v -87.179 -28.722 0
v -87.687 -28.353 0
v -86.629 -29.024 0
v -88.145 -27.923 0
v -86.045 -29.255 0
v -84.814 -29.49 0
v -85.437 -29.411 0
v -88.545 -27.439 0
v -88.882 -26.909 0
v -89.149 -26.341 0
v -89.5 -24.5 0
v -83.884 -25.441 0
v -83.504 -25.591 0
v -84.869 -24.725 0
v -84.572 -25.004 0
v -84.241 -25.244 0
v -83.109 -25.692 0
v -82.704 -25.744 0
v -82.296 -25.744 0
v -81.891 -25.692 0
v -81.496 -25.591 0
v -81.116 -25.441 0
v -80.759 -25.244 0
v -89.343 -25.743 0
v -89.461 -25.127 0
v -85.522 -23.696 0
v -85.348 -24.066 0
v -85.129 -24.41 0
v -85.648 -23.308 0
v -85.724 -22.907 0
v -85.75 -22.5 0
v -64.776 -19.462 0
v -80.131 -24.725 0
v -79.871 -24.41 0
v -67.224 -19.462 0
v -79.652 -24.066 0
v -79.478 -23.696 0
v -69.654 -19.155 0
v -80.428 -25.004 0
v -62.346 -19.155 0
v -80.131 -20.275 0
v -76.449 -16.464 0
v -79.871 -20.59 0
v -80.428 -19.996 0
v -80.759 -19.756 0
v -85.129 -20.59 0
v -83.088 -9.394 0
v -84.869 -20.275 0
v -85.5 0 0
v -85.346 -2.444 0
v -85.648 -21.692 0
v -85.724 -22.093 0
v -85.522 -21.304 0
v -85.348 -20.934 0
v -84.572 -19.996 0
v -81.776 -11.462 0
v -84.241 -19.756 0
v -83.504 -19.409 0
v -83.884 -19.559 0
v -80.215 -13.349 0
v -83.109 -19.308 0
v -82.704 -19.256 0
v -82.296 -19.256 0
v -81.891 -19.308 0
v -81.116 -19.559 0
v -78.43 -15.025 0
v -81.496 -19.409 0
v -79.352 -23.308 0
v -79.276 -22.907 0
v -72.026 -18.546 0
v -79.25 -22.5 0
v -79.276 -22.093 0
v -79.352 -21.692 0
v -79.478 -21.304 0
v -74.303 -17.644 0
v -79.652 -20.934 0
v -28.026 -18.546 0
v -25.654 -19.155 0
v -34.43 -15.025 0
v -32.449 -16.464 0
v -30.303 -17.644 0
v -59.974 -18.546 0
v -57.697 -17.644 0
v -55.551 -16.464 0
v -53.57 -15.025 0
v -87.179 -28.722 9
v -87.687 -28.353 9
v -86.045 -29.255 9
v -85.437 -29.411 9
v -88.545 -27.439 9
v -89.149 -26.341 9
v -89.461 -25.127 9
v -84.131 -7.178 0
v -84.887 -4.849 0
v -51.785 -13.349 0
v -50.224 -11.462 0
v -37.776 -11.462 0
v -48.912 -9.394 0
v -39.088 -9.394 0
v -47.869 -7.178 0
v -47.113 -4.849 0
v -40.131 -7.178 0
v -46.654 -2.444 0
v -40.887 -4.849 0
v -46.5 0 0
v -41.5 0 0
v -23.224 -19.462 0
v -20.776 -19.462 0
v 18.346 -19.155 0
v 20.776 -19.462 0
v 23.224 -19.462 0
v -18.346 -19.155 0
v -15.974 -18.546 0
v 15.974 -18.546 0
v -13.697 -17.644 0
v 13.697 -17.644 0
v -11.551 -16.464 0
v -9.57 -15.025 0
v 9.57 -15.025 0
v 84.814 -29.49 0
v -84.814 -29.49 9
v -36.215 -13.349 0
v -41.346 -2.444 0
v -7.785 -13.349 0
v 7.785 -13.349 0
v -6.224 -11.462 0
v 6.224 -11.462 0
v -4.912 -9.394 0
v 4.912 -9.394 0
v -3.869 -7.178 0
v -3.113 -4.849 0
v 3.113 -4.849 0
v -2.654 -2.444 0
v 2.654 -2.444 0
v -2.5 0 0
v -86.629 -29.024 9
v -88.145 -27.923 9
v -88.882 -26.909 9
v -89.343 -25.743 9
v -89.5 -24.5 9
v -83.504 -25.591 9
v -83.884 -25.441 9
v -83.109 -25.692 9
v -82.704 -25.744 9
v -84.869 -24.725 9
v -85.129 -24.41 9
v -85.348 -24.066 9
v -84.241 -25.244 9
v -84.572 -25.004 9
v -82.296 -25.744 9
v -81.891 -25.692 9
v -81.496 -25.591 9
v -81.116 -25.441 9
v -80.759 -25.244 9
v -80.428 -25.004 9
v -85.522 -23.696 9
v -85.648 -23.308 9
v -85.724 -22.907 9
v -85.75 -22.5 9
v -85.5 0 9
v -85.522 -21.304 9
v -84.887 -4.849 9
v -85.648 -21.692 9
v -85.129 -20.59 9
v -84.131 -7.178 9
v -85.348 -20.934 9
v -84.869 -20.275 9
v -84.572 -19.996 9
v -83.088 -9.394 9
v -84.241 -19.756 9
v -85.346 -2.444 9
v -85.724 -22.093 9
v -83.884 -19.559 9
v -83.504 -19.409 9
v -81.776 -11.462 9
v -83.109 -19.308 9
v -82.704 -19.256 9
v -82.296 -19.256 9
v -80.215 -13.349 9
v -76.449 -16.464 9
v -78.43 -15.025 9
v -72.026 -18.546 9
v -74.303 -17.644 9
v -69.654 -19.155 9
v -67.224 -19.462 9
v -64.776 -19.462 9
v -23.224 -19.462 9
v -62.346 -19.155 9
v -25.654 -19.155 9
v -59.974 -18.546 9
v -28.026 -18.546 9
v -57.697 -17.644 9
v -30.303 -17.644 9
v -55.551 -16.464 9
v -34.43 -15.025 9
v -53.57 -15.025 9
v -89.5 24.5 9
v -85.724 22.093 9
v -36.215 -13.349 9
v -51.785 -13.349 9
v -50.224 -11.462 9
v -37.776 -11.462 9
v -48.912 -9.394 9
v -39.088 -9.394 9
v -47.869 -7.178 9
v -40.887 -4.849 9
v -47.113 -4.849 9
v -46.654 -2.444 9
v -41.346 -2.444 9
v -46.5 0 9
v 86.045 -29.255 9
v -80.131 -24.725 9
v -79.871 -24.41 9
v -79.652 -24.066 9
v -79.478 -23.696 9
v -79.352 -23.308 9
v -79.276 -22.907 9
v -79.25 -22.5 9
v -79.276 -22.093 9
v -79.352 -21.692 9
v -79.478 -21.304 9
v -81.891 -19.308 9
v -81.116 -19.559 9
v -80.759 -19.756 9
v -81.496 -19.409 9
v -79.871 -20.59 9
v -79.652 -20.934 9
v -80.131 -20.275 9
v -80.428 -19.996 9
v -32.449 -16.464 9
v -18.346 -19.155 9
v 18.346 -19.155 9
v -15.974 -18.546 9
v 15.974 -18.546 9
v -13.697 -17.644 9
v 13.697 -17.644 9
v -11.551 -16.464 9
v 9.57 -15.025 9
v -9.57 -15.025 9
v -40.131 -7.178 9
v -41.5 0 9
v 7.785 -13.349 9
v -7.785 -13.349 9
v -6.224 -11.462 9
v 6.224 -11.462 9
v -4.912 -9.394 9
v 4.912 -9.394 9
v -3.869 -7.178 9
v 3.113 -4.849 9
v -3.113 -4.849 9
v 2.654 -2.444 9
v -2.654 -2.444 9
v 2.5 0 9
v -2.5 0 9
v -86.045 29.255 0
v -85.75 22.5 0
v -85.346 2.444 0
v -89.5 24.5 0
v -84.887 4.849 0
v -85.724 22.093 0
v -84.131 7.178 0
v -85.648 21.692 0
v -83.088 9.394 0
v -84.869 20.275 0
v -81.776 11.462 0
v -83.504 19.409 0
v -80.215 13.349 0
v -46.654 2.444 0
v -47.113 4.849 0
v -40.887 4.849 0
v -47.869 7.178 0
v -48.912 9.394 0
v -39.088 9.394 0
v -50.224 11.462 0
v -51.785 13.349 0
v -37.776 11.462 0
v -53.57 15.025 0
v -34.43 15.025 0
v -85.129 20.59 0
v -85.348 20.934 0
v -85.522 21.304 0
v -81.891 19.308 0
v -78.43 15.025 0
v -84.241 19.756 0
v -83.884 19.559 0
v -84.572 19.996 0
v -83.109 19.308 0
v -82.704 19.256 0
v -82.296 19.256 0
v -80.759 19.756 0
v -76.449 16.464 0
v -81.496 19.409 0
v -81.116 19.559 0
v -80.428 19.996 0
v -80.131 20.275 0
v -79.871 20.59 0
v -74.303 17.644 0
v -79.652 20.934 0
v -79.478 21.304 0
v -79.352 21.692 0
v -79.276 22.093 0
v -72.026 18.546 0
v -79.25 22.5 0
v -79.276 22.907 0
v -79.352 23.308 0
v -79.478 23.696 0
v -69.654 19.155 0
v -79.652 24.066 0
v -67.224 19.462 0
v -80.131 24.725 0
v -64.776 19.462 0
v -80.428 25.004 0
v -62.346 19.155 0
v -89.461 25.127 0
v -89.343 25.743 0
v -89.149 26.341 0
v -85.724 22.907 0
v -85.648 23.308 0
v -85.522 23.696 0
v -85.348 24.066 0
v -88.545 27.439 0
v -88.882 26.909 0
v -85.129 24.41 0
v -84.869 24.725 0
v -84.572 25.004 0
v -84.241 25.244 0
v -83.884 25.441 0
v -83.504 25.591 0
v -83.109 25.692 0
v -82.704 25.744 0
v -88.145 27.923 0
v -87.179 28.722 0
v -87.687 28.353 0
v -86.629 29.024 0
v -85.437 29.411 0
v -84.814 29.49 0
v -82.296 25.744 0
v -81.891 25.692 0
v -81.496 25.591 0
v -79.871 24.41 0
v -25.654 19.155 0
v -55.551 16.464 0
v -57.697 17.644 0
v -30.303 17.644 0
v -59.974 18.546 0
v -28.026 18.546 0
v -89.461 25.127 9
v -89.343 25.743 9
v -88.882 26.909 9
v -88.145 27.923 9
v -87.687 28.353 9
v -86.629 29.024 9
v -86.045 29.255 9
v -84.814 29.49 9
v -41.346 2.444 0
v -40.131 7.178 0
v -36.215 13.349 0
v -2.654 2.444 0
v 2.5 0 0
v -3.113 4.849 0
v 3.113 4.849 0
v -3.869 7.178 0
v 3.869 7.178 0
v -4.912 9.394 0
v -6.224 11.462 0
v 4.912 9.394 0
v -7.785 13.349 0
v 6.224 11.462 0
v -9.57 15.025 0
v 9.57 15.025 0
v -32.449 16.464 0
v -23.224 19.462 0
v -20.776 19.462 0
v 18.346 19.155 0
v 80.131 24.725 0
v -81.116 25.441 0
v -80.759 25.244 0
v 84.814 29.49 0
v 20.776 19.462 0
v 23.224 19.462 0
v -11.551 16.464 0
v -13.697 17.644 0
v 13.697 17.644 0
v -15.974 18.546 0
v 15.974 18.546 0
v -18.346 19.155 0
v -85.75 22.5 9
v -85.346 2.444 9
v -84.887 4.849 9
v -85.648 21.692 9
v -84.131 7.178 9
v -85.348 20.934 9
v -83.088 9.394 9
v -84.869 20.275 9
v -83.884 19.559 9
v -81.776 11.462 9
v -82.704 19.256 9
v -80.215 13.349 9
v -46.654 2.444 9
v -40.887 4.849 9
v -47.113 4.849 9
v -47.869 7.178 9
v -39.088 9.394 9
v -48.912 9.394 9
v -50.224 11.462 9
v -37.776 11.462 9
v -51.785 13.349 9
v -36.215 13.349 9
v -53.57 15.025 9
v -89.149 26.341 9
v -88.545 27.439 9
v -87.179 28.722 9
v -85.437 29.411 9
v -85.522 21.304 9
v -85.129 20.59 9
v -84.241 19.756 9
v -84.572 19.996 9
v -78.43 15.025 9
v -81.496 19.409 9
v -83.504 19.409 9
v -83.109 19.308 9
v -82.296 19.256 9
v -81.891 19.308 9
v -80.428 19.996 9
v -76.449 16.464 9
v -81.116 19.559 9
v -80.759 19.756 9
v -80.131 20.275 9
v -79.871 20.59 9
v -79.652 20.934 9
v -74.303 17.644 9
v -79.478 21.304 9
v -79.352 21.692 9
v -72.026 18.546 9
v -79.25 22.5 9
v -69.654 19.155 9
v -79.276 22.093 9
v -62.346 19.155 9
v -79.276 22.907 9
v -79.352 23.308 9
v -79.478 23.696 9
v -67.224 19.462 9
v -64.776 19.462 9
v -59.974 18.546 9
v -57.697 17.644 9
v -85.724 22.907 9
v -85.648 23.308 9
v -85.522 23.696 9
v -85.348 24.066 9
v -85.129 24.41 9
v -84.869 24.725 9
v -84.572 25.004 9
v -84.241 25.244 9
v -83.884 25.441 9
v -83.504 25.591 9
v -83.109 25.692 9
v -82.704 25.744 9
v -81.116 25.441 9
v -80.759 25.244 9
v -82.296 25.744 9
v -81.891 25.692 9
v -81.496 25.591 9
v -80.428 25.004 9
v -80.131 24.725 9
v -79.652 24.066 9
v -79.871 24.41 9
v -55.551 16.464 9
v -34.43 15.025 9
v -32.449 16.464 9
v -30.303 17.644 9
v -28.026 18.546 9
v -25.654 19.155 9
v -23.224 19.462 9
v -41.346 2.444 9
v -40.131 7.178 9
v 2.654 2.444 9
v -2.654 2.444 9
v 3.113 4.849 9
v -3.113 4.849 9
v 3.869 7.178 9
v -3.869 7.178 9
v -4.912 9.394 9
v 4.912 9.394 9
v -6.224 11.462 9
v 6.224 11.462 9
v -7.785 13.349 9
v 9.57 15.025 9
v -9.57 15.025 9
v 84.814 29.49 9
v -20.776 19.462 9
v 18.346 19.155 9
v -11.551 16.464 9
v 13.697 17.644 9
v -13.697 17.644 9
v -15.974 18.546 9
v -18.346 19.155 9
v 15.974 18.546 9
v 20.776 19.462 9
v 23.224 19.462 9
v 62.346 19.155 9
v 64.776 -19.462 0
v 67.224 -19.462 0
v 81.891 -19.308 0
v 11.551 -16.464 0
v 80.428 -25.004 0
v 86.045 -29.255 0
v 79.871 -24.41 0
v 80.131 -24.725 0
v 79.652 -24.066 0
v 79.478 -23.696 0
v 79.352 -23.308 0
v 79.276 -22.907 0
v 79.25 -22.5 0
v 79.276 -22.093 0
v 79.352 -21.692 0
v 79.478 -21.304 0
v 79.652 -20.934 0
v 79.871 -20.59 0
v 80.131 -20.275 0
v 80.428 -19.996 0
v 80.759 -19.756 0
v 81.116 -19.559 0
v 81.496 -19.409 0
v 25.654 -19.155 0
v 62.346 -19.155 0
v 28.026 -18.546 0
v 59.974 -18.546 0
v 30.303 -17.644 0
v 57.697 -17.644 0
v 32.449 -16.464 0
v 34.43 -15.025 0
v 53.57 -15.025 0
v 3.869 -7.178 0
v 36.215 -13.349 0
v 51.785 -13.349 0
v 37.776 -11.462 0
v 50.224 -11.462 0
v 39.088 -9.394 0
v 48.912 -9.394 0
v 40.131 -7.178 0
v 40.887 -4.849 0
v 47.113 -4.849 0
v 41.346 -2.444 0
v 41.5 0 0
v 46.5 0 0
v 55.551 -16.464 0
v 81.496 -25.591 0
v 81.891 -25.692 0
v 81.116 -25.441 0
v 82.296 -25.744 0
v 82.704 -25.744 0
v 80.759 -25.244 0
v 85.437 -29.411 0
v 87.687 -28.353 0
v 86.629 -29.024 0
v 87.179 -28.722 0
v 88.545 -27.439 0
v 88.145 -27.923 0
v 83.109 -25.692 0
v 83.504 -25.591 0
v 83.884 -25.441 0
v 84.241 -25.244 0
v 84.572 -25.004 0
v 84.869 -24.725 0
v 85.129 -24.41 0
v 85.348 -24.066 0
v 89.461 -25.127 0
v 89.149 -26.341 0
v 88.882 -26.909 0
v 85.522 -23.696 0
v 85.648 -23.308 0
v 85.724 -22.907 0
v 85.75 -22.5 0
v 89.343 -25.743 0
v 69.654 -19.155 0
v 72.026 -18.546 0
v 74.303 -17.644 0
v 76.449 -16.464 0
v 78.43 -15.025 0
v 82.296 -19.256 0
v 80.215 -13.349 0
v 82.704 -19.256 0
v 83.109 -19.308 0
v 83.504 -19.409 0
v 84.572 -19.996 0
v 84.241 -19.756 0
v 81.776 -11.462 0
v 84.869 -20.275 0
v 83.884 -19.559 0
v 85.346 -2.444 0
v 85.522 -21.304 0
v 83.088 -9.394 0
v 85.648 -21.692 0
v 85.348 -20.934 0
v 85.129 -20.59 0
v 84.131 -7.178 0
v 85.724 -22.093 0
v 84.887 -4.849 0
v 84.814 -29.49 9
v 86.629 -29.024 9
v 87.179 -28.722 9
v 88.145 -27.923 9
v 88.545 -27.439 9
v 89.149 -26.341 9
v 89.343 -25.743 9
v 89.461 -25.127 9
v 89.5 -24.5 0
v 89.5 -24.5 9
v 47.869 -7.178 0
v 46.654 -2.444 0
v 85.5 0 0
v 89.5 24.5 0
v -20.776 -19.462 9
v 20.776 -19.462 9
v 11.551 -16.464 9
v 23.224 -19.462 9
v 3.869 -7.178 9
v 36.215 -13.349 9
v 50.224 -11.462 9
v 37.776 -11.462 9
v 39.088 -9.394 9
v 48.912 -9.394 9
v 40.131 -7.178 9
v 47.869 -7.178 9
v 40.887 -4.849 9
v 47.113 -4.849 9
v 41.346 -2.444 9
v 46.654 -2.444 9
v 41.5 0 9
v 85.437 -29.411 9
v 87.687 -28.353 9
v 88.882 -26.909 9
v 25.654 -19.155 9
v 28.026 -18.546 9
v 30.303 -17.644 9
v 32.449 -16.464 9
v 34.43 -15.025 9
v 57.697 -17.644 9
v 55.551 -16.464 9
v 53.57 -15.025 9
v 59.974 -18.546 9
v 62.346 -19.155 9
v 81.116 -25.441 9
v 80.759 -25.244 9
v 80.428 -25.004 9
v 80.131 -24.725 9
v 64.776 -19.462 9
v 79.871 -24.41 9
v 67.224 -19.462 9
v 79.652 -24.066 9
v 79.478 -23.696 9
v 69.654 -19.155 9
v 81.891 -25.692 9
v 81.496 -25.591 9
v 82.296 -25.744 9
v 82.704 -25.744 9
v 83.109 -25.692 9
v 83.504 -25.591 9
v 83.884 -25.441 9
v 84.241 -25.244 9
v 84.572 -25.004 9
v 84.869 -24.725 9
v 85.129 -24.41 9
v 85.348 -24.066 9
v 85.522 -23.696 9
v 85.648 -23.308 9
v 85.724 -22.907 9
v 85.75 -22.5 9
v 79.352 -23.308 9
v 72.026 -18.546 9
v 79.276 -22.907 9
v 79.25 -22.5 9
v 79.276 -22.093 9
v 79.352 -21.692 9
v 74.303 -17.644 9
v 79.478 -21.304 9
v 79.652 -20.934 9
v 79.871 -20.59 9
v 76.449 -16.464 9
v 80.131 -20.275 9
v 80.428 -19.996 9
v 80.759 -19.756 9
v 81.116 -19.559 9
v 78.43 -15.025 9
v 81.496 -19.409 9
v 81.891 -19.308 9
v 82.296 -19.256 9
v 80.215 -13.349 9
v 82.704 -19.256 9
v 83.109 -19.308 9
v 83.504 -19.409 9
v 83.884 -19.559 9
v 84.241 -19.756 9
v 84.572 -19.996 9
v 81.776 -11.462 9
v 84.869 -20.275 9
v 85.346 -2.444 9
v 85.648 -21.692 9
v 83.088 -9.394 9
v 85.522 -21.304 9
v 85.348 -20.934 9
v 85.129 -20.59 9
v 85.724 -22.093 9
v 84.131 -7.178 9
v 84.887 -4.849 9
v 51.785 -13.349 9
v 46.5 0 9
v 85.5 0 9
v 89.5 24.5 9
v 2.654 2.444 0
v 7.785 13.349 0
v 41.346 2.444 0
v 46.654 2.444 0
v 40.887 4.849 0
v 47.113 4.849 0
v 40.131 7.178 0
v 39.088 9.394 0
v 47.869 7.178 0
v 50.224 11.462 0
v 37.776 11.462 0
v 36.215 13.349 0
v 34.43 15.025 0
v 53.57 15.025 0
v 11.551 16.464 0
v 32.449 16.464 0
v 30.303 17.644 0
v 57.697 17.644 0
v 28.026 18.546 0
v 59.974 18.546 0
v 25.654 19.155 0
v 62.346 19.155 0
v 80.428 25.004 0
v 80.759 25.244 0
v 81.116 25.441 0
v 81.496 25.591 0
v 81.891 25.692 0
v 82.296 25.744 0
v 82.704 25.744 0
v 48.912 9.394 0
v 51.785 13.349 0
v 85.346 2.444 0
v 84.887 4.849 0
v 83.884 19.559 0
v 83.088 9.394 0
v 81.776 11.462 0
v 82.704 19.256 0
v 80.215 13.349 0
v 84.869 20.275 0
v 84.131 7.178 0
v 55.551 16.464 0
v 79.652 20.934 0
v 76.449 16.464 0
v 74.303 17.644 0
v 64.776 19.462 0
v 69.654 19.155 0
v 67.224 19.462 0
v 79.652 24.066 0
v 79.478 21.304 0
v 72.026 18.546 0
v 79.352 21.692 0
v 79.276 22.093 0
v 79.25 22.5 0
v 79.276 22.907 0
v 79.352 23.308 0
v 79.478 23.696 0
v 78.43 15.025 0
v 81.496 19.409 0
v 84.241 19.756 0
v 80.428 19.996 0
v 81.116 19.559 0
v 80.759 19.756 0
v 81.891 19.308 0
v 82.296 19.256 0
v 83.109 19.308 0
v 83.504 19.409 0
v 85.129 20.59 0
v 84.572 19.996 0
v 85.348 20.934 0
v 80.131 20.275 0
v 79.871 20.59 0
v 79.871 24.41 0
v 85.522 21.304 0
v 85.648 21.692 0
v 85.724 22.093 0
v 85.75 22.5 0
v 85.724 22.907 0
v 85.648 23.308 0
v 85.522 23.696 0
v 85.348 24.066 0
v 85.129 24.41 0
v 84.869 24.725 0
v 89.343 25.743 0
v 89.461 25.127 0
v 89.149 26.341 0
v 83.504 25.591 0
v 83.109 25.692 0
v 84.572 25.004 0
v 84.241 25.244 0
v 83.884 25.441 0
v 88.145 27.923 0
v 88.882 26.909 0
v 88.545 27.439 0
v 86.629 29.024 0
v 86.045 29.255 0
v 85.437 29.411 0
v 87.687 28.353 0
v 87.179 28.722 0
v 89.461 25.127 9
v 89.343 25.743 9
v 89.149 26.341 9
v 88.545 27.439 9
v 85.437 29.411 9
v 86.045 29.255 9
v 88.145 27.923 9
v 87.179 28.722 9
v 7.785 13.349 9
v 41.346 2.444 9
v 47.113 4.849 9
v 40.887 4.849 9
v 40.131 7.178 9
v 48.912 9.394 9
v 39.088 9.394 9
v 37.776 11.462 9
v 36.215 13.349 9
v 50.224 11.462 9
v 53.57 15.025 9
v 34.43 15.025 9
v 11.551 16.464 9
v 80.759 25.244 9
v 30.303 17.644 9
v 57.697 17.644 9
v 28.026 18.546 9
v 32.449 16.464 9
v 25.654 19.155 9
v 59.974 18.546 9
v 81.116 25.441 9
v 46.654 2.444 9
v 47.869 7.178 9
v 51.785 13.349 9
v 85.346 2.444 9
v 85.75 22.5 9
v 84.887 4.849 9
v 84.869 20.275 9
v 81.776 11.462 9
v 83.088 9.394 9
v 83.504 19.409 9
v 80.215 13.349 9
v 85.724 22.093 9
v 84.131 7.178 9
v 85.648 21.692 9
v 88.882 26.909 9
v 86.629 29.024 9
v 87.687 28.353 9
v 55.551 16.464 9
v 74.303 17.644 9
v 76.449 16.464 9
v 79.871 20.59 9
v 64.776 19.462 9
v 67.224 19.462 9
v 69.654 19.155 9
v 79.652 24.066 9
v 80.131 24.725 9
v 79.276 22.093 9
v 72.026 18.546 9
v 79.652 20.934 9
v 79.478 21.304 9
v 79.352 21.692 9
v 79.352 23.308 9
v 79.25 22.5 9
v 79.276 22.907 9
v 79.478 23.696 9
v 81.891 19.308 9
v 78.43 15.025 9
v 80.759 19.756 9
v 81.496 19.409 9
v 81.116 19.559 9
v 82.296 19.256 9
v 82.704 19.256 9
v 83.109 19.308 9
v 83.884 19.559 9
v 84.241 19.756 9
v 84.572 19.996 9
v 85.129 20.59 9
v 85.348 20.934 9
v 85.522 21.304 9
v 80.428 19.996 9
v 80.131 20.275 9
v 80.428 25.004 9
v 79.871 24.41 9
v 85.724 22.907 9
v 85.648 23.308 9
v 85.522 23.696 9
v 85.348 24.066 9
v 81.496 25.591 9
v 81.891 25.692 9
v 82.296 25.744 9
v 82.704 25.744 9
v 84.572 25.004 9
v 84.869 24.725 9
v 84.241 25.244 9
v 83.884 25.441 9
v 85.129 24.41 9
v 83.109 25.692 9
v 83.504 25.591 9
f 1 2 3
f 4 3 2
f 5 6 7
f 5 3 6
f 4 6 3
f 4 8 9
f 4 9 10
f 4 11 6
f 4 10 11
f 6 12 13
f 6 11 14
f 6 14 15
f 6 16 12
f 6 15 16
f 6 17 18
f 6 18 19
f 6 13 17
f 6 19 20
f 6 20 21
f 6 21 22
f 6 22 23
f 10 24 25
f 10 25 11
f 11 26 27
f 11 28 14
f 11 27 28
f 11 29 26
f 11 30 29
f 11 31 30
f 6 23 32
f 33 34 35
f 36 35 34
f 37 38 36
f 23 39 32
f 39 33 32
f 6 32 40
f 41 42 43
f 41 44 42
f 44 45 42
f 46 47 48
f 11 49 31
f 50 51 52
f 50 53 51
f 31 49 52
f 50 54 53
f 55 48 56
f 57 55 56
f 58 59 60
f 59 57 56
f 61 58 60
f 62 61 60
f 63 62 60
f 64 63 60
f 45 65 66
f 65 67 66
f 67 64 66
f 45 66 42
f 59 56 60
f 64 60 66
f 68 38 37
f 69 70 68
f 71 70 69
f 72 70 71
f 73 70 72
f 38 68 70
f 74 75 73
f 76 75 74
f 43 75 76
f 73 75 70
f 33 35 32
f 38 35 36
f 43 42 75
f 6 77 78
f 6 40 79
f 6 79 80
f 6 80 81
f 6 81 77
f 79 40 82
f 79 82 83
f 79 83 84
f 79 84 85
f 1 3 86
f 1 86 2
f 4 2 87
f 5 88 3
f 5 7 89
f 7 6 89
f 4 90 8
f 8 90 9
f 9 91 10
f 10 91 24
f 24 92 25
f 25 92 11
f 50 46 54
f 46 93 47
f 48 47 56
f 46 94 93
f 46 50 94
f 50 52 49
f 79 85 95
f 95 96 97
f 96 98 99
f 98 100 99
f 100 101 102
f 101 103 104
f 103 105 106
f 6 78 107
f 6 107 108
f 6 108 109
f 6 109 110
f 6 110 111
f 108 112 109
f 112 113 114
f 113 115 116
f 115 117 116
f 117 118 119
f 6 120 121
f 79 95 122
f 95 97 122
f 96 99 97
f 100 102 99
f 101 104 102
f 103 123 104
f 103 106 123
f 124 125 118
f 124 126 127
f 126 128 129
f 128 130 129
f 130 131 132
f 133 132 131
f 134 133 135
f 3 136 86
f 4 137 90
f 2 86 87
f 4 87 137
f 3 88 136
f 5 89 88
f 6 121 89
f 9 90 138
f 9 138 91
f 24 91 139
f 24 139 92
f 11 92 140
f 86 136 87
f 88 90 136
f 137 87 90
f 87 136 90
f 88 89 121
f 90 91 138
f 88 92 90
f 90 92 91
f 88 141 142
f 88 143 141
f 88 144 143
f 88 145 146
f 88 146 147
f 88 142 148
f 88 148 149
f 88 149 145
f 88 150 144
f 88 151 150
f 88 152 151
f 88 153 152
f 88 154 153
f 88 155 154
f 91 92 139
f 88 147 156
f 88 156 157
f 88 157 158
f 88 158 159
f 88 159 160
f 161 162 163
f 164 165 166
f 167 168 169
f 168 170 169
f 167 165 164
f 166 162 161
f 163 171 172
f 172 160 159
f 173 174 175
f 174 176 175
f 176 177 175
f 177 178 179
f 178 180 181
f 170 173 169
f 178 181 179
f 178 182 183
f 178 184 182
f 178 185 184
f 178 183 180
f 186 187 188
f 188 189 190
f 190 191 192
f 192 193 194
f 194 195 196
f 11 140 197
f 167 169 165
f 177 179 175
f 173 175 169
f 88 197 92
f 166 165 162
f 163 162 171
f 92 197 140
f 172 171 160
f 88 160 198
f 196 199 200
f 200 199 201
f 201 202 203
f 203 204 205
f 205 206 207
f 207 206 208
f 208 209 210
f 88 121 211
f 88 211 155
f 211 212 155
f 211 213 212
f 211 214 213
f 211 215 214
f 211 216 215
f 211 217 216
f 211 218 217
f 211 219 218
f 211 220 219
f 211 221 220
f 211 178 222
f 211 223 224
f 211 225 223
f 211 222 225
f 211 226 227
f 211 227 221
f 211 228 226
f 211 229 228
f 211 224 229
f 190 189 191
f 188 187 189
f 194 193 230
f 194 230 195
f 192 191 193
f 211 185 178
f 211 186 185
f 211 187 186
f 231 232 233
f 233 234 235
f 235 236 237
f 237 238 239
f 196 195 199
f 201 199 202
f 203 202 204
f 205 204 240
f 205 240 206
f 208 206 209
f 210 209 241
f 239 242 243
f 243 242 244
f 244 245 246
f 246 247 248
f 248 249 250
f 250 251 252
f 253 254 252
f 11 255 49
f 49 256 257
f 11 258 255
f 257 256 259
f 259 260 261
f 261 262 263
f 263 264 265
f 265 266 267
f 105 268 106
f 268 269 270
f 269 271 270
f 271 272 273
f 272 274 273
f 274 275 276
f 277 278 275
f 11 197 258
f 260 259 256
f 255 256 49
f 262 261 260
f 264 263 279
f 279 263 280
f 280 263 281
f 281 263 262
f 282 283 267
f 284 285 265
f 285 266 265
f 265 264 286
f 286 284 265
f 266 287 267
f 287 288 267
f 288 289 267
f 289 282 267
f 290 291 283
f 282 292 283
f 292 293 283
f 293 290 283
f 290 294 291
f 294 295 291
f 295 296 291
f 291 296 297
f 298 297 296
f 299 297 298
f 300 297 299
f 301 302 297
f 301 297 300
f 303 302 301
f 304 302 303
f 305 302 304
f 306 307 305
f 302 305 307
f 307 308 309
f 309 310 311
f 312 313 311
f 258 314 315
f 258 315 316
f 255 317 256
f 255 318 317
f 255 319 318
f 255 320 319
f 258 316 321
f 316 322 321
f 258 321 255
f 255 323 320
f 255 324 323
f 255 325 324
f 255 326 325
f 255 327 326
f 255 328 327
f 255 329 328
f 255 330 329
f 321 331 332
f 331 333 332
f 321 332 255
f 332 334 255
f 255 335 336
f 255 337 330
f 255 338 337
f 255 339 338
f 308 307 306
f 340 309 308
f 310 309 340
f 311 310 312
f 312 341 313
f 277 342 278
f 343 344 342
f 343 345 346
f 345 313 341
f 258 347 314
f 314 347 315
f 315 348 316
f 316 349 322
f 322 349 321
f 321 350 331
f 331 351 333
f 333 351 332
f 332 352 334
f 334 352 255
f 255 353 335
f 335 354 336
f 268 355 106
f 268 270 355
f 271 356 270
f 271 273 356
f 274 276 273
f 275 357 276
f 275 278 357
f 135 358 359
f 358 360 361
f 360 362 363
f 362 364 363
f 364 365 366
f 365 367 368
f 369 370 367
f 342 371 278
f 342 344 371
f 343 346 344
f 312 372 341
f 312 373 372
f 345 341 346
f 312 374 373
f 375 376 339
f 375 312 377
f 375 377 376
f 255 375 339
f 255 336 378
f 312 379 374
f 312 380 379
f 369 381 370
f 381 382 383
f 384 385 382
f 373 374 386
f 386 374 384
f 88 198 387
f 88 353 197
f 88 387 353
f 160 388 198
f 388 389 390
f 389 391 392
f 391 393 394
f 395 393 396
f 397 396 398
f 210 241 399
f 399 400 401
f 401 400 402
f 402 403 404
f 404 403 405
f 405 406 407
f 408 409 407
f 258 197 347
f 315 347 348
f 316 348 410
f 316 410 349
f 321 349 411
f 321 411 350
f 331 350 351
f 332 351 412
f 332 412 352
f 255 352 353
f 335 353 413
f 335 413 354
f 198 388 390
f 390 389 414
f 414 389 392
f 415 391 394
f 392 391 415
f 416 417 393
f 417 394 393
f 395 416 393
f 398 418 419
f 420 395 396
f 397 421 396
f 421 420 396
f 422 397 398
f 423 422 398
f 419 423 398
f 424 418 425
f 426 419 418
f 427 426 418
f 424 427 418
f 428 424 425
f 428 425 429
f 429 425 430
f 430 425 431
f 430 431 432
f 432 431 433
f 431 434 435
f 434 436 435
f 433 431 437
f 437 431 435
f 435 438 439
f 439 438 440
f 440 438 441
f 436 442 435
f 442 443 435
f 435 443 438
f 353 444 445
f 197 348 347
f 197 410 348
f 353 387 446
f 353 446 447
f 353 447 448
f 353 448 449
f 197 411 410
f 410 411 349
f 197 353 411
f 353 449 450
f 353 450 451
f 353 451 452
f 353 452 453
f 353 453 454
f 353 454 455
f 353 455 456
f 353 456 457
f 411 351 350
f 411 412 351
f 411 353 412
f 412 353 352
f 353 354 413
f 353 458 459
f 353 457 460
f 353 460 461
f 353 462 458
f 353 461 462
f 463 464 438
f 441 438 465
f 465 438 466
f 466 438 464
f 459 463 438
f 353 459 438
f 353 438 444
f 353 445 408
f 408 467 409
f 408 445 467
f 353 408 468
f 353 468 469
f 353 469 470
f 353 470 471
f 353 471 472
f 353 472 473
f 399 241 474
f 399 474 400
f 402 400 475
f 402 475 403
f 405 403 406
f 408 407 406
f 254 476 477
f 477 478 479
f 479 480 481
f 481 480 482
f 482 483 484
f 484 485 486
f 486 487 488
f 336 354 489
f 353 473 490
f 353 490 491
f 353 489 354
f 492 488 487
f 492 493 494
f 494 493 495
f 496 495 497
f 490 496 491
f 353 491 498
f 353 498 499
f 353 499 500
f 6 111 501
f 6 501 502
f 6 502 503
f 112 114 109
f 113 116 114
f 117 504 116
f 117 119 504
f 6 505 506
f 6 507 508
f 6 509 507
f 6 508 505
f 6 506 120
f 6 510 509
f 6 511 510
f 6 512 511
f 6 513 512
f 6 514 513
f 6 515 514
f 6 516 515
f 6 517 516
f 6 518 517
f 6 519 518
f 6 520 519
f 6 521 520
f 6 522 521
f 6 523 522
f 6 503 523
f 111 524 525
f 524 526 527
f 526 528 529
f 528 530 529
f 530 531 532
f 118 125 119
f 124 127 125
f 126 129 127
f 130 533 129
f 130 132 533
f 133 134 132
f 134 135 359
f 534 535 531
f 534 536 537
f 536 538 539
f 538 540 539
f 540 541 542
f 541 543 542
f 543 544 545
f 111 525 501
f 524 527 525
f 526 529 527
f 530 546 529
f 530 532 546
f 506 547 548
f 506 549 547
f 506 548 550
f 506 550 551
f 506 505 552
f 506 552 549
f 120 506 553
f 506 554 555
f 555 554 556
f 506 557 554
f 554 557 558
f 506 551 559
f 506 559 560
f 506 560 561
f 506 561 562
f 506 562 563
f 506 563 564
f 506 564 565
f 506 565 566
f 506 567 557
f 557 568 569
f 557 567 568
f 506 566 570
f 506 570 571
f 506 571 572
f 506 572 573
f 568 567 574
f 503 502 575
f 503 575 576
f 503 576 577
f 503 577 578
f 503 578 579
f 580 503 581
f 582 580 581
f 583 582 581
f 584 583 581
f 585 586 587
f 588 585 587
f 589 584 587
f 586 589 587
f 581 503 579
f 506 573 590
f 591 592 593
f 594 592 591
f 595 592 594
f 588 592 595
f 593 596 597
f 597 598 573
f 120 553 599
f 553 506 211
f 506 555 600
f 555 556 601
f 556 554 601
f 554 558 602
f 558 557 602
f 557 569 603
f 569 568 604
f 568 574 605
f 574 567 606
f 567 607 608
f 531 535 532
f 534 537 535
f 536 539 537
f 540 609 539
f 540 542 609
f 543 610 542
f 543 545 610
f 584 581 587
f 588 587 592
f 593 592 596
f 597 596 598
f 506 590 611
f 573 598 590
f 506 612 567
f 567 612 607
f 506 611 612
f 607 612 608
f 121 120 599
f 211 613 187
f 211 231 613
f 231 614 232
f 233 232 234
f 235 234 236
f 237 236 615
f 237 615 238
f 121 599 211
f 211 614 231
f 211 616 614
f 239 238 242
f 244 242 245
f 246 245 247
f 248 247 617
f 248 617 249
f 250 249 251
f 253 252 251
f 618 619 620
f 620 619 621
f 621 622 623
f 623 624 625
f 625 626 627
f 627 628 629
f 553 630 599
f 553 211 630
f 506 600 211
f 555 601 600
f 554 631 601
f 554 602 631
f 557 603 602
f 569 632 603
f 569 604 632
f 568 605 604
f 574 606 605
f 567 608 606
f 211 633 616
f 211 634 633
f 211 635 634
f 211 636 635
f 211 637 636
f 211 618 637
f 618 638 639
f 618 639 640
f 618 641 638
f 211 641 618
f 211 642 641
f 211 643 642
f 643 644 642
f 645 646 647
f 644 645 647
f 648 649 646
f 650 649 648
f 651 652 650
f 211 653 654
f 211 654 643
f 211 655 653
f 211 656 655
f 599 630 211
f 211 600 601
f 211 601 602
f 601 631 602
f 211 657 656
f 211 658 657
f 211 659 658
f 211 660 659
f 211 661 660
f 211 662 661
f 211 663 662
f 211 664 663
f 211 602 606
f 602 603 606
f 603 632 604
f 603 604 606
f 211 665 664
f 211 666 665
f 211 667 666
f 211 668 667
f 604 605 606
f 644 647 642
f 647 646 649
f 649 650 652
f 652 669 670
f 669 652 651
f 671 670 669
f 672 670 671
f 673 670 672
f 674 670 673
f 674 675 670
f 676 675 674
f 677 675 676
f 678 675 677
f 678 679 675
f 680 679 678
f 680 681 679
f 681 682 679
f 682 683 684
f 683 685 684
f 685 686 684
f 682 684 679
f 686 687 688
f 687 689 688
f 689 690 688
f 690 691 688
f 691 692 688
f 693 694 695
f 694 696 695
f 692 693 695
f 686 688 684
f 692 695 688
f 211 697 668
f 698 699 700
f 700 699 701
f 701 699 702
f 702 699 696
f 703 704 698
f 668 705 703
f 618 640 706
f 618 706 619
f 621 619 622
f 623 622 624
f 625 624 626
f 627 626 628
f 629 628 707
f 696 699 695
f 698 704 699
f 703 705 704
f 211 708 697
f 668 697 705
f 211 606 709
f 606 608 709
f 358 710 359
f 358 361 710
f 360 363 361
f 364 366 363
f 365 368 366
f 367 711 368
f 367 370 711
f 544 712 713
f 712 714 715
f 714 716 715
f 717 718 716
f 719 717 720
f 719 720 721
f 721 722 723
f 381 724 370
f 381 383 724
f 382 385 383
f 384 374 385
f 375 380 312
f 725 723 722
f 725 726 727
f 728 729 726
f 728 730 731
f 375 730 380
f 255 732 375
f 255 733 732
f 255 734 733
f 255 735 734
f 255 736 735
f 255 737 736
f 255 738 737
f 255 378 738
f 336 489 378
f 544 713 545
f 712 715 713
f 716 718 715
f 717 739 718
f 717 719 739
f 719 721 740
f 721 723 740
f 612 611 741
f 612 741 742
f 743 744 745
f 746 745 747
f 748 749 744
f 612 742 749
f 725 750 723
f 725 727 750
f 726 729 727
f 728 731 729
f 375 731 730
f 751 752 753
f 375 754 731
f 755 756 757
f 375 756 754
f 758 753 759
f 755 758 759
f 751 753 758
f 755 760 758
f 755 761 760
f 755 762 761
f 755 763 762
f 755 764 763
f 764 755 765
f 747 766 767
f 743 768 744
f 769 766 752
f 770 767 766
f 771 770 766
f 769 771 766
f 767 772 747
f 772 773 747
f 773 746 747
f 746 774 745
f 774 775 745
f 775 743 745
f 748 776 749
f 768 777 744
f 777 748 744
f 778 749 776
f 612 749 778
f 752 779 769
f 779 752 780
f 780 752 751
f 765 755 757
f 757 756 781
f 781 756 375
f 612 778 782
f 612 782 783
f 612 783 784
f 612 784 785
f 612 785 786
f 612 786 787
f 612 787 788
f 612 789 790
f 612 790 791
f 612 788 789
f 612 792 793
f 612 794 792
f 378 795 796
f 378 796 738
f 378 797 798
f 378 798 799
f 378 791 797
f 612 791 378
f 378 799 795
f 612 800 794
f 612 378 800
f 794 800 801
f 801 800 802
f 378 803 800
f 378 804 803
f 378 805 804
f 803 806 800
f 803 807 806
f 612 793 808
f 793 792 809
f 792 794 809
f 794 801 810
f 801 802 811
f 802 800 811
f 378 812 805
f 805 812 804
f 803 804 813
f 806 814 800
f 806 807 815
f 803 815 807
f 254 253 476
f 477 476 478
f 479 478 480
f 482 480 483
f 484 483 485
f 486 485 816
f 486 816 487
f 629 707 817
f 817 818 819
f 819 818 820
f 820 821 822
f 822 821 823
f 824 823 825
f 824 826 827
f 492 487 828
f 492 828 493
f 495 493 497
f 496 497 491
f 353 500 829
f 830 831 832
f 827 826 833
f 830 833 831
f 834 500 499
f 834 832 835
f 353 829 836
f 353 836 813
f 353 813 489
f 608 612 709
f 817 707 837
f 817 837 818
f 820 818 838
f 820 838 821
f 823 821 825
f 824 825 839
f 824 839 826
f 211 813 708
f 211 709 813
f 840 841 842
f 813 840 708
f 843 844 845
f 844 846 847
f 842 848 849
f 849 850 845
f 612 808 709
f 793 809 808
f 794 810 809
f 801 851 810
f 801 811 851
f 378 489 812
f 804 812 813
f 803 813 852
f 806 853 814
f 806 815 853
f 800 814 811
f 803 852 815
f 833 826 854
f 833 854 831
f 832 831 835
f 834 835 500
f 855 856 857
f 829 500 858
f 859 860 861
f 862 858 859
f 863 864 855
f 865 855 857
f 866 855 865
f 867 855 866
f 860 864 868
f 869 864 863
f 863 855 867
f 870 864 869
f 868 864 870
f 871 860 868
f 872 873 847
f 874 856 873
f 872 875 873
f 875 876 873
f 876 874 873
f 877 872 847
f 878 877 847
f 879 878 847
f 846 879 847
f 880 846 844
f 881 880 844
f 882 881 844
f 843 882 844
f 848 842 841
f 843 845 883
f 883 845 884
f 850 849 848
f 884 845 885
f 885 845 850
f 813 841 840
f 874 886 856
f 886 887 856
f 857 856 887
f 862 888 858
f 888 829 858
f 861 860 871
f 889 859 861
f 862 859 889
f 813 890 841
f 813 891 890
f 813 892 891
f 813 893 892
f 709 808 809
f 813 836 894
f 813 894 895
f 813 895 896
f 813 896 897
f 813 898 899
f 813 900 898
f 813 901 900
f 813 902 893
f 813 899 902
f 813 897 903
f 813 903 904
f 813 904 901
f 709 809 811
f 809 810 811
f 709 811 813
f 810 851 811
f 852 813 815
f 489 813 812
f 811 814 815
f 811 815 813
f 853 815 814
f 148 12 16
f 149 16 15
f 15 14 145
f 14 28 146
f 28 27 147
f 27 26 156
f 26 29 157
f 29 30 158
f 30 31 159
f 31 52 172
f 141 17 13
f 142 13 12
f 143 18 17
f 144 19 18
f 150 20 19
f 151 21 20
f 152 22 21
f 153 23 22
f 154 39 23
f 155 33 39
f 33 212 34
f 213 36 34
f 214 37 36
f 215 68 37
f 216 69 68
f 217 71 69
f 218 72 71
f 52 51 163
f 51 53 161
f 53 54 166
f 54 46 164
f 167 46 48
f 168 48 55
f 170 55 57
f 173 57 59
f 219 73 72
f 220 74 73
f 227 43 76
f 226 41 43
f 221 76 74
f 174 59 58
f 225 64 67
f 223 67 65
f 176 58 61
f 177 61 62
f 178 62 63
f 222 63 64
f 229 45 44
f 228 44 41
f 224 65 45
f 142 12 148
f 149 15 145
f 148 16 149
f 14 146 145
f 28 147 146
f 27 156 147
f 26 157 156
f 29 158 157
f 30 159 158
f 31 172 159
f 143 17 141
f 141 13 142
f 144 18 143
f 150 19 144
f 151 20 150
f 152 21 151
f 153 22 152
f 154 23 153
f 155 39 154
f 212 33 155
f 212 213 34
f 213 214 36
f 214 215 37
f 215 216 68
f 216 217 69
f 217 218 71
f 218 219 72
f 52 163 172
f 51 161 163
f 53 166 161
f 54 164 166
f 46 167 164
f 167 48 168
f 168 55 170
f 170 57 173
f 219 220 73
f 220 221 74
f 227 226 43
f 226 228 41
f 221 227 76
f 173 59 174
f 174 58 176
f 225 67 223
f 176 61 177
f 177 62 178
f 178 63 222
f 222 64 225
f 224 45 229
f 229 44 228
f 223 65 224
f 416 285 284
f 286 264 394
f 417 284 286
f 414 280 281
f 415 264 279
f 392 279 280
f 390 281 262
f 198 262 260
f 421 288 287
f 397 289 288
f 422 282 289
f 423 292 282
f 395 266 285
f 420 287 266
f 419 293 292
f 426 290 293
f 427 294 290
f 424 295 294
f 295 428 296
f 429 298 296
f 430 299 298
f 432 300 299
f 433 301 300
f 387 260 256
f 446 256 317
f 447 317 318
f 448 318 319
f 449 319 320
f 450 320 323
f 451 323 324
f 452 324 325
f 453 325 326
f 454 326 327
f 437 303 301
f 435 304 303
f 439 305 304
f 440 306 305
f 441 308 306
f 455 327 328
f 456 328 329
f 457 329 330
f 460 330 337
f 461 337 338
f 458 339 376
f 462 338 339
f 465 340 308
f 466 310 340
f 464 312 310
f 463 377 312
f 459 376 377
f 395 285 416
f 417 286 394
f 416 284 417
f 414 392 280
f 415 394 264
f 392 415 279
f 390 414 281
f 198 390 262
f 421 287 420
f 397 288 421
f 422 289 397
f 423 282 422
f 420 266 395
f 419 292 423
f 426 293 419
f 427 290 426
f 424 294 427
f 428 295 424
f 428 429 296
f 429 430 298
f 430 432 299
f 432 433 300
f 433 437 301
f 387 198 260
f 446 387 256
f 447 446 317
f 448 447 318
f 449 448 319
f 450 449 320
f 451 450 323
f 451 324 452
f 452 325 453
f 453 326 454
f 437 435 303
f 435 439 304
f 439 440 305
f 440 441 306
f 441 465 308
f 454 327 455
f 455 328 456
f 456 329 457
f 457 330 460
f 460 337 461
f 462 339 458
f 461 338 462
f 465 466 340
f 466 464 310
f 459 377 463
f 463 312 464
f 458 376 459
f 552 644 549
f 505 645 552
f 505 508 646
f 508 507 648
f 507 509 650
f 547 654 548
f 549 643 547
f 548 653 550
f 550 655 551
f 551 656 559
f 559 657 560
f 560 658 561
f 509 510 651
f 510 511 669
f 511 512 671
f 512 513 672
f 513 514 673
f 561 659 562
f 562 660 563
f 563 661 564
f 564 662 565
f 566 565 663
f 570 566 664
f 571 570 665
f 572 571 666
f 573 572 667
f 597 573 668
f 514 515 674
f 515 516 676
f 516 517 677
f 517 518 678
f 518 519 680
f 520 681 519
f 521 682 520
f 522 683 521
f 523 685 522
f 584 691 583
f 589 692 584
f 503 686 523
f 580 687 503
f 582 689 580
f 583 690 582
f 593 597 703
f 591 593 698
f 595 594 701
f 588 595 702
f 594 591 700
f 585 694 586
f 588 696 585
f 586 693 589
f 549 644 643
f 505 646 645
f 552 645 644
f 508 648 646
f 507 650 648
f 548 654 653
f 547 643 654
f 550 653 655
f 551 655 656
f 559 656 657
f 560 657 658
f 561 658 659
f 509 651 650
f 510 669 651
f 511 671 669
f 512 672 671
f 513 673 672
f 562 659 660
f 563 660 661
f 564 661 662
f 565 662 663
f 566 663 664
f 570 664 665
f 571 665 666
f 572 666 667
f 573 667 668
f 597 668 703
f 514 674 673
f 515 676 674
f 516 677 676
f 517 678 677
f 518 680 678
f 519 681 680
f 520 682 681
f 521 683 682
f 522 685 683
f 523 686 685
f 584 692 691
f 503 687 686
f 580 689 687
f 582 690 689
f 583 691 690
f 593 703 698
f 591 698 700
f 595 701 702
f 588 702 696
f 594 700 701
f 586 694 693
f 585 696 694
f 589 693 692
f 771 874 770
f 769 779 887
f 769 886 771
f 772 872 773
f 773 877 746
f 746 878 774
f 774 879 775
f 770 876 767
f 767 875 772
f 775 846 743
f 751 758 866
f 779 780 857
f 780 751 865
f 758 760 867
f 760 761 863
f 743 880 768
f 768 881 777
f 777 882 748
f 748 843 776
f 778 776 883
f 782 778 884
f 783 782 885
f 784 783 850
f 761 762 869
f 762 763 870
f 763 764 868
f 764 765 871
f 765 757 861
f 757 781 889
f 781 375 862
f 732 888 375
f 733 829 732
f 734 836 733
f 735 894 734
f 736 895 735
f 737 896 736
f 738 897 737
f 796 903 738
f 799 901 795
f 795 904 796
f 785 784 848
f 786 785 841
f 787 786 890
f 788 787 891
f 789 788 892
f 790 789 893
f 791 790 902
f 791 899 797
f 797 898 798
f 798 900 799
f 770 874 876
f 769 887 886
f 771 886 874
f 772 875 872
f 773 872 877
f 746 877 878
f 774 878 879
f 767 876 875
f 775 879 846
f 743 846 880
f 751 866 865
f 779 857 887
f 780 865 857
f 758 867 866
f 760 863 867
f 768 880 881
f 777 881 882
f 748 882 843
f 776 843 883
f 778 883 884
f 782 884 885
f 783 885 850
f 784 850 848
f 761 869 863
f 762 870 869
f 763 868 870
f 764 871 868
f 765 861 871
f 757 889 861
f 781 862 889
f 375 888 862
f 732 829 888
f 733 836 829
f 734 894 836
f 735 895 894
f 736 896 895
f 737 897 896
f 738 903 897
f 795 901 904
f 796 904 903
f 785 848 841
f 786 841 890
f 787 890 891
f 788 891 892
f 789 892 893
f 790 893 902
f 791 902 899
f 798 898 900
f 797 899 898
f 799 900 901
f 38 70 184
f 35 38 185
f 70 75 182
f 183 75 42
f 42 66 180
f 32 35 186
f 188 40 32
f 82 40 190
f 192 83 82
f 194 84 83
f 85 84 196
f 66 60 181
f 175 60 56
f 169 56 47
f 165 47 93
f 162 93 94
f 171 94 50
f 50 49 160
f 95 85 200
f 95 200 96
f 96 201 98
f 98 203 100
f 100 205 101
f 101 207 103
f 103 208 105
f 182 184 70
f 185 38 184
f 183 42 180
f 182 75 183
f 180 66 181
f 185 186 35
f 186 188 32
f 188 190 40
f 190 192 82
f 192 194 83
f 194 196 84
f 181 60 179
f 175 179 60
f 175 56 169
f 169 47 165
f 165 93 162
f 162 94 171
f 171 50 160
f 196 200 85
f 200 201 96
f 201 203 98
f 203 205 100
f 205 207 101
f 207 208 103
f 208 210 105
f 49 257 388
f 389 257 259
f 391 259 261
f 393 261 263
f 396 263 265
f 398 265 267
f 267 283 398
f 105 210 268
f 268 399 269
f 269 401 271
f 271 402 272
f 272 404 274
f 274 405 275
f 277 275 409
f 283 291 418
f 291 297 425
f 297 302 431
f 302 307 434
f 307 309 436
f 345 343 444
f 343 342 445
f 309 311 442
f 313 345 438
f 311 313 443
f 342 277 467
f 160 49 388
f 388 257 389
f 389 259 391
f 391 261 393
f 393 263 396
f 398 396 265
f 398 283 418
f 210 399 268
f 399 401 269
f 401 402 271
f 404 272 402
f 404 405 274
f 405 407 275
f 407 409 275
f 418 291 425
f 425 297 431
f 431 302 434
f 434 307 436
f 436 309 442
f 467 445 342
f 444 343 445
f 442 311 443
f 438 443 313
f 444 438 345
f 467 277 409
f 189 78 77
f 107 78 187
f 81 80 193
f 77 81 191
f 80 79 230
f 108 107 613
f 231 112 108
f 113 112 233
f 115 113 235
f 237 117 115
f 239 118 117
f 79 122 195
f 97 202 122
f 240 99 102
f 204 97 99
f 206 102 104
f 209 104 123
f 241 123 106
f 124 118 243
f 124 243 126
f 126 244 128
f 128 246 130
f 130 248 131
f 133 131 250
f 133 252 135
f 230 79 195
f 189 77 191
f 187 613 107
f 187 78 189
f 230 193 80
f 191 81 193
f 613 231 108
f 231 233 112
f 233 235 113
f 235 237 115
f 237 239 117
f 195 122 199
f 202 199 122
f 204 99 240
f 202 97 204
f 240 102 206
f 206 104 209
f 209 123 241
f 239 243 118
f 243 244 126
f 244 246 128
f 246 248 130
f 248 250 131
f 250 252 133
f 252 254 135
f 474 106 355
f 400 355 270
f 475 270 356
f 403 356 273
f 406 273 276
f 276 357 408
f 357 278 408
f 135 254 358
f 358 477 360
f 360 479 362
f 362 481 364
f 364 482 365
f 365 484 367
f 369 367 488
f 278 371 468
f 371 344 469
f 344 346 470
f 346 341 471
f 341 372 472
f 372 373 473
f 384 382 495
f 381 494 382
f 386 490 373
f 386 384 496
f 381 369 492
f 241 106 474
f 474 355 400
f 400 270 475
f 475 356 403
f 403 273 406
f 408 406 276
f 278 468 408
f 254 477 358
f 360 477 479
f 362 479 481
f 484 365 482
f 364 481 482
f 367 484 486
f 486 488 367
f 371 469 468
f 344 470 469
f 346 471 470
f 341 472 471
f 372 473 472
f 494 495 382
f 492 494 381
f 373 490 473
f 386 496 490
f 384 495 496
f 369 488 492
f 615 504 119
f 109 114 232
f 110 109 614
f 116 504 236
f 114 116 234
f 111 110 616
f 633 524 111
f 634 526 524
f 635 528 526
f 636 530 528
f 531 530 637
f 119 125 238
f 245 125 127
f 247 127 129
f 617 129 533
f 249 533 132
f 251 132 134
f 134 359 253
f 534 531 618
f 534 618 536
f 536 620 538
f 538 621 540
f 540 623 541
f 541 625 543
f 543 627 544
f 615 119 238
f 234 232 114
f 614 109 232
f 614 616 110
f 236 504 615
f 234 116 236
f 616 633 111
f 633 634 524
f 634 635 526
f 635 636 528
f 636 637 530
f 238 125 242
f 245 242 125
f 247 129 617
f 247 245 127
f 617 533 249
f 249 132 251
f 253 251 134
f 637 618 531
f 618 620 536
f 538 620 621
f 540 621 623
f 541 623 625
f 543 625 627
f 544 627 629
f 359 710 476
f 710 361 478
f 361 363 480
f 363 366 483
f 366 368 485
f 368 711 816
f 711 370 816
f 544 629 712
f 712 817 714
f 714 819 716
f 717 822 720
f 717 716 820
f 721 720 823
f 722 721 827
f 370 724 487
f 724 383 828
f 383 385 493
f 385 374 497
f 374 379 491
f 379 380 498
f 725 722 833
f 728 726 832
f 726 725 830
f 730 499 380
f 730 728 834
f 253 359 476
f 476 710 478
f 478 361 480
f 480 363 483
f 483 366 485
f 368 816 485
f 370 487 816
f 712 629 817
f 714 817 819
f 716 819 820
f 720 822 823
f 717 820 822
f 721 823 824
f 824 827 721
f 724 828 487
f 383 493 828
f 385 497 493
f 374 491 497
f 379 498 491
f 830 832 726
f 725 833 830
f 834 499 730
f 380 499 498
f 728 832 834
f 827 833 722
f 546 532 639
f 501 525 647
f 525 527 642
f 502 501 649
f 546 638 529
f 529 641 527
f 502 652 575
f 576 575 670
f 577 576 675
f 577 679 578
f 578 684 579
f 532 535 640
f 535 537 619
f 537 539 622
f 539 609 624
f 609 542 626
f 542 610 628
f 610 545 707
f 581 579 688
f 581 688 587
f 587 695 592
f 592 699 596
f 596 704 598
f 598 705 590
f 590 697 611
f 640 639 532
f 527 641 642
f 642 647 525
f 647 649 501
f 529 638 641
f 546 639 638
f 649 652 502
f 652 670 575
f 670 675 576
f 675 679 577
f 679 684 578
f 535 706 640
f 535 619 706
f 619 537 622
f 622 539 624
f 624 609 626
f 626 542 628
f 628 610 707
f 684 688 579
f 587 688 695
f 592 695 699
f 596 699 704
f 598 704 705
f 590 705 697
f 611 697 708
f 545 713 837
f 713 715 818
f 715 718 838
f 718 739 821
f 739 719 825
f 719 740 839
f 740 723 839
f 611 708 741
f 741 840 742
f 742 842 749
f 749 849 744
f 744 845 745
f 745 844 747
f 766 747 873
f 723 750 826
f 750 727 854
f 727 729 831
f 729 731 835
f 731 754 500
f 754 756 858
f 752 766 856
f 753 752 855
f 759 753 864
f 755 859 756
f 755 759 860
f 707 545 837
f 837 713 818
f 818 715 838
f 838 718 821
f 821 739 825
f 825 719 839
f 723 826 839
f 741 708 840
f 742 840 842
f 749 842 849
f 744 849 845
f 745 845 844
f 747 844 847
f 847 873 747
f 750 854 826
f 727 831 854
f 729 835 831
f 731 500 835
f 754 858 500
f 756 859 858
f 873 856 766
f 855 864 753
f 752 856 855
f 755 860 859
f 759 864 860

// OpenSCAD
$fn = 50;

difference() {
	union() {
		hull() {
			translate(v = [-84.5, 24.5, 0]) {
				cylinder(h = 9, r = 5);
			}
			translate(v = [84.5, 24.5, 0]) {
				cylinder(h = 9, r = 5);
			}
			translate(v = [-84.5, -24.5, 0]) {
				cylinder(h = 9, r = 5);
			}
			translate(v = [84.5, -24.5, 0]) {
				cylinder(h = 9, r = 5);
			}
		}
	}
	union() {
		translate(v = [-82.5, -22.5, -100.0]) {
			cylinder(h = 200, r = 3.25);
		}
		translate(v = [-82.5, 22.5, -100.0]) {
			cylinder(h = 200, r = 3.25);
		}
		translate(v = [82.5, -22.5, -100.0]) {
			cylinder(h = 200, r = 3.25);
		}
		translate(v = [82.5, 22.5, -100.0]) {
			cylinder(h = 200, r = 3.25);
		}
		translate(v = [-82.5, -22.5, -100.0]) {
			cylinder(h = 200, r = 1.8);
		}
		translate(v = [-82.5, 22.5, -100.0]) {
			cylinder(h = 200, r = 1.8);
		}
		translate(v = [82.5, -22.5, -100.0]) {
			cylinder(h = 200, r = 1.8);
		}
		translate(v = [82.5, 22.5, -100.0]) {
			cylinder(h = 200, r = 1.8);
		}
		translate(v = [-66.0, 0, 0.0]) {
			cylinder(h = 9, r = 19.5);
		}
		translate(v = [-22.0, 0, 0.0]) {
			cylinder(h = 9, r = 19.5);
		}
		translate(v = [22.0, 0, 0.0]) {
			cylinder(h = 9, r = 19.5);
		}
		translate(v = [66.0, 0, 0.0]) {
			cylinder(h = 9, r = 19.5);
		}
	}
}
